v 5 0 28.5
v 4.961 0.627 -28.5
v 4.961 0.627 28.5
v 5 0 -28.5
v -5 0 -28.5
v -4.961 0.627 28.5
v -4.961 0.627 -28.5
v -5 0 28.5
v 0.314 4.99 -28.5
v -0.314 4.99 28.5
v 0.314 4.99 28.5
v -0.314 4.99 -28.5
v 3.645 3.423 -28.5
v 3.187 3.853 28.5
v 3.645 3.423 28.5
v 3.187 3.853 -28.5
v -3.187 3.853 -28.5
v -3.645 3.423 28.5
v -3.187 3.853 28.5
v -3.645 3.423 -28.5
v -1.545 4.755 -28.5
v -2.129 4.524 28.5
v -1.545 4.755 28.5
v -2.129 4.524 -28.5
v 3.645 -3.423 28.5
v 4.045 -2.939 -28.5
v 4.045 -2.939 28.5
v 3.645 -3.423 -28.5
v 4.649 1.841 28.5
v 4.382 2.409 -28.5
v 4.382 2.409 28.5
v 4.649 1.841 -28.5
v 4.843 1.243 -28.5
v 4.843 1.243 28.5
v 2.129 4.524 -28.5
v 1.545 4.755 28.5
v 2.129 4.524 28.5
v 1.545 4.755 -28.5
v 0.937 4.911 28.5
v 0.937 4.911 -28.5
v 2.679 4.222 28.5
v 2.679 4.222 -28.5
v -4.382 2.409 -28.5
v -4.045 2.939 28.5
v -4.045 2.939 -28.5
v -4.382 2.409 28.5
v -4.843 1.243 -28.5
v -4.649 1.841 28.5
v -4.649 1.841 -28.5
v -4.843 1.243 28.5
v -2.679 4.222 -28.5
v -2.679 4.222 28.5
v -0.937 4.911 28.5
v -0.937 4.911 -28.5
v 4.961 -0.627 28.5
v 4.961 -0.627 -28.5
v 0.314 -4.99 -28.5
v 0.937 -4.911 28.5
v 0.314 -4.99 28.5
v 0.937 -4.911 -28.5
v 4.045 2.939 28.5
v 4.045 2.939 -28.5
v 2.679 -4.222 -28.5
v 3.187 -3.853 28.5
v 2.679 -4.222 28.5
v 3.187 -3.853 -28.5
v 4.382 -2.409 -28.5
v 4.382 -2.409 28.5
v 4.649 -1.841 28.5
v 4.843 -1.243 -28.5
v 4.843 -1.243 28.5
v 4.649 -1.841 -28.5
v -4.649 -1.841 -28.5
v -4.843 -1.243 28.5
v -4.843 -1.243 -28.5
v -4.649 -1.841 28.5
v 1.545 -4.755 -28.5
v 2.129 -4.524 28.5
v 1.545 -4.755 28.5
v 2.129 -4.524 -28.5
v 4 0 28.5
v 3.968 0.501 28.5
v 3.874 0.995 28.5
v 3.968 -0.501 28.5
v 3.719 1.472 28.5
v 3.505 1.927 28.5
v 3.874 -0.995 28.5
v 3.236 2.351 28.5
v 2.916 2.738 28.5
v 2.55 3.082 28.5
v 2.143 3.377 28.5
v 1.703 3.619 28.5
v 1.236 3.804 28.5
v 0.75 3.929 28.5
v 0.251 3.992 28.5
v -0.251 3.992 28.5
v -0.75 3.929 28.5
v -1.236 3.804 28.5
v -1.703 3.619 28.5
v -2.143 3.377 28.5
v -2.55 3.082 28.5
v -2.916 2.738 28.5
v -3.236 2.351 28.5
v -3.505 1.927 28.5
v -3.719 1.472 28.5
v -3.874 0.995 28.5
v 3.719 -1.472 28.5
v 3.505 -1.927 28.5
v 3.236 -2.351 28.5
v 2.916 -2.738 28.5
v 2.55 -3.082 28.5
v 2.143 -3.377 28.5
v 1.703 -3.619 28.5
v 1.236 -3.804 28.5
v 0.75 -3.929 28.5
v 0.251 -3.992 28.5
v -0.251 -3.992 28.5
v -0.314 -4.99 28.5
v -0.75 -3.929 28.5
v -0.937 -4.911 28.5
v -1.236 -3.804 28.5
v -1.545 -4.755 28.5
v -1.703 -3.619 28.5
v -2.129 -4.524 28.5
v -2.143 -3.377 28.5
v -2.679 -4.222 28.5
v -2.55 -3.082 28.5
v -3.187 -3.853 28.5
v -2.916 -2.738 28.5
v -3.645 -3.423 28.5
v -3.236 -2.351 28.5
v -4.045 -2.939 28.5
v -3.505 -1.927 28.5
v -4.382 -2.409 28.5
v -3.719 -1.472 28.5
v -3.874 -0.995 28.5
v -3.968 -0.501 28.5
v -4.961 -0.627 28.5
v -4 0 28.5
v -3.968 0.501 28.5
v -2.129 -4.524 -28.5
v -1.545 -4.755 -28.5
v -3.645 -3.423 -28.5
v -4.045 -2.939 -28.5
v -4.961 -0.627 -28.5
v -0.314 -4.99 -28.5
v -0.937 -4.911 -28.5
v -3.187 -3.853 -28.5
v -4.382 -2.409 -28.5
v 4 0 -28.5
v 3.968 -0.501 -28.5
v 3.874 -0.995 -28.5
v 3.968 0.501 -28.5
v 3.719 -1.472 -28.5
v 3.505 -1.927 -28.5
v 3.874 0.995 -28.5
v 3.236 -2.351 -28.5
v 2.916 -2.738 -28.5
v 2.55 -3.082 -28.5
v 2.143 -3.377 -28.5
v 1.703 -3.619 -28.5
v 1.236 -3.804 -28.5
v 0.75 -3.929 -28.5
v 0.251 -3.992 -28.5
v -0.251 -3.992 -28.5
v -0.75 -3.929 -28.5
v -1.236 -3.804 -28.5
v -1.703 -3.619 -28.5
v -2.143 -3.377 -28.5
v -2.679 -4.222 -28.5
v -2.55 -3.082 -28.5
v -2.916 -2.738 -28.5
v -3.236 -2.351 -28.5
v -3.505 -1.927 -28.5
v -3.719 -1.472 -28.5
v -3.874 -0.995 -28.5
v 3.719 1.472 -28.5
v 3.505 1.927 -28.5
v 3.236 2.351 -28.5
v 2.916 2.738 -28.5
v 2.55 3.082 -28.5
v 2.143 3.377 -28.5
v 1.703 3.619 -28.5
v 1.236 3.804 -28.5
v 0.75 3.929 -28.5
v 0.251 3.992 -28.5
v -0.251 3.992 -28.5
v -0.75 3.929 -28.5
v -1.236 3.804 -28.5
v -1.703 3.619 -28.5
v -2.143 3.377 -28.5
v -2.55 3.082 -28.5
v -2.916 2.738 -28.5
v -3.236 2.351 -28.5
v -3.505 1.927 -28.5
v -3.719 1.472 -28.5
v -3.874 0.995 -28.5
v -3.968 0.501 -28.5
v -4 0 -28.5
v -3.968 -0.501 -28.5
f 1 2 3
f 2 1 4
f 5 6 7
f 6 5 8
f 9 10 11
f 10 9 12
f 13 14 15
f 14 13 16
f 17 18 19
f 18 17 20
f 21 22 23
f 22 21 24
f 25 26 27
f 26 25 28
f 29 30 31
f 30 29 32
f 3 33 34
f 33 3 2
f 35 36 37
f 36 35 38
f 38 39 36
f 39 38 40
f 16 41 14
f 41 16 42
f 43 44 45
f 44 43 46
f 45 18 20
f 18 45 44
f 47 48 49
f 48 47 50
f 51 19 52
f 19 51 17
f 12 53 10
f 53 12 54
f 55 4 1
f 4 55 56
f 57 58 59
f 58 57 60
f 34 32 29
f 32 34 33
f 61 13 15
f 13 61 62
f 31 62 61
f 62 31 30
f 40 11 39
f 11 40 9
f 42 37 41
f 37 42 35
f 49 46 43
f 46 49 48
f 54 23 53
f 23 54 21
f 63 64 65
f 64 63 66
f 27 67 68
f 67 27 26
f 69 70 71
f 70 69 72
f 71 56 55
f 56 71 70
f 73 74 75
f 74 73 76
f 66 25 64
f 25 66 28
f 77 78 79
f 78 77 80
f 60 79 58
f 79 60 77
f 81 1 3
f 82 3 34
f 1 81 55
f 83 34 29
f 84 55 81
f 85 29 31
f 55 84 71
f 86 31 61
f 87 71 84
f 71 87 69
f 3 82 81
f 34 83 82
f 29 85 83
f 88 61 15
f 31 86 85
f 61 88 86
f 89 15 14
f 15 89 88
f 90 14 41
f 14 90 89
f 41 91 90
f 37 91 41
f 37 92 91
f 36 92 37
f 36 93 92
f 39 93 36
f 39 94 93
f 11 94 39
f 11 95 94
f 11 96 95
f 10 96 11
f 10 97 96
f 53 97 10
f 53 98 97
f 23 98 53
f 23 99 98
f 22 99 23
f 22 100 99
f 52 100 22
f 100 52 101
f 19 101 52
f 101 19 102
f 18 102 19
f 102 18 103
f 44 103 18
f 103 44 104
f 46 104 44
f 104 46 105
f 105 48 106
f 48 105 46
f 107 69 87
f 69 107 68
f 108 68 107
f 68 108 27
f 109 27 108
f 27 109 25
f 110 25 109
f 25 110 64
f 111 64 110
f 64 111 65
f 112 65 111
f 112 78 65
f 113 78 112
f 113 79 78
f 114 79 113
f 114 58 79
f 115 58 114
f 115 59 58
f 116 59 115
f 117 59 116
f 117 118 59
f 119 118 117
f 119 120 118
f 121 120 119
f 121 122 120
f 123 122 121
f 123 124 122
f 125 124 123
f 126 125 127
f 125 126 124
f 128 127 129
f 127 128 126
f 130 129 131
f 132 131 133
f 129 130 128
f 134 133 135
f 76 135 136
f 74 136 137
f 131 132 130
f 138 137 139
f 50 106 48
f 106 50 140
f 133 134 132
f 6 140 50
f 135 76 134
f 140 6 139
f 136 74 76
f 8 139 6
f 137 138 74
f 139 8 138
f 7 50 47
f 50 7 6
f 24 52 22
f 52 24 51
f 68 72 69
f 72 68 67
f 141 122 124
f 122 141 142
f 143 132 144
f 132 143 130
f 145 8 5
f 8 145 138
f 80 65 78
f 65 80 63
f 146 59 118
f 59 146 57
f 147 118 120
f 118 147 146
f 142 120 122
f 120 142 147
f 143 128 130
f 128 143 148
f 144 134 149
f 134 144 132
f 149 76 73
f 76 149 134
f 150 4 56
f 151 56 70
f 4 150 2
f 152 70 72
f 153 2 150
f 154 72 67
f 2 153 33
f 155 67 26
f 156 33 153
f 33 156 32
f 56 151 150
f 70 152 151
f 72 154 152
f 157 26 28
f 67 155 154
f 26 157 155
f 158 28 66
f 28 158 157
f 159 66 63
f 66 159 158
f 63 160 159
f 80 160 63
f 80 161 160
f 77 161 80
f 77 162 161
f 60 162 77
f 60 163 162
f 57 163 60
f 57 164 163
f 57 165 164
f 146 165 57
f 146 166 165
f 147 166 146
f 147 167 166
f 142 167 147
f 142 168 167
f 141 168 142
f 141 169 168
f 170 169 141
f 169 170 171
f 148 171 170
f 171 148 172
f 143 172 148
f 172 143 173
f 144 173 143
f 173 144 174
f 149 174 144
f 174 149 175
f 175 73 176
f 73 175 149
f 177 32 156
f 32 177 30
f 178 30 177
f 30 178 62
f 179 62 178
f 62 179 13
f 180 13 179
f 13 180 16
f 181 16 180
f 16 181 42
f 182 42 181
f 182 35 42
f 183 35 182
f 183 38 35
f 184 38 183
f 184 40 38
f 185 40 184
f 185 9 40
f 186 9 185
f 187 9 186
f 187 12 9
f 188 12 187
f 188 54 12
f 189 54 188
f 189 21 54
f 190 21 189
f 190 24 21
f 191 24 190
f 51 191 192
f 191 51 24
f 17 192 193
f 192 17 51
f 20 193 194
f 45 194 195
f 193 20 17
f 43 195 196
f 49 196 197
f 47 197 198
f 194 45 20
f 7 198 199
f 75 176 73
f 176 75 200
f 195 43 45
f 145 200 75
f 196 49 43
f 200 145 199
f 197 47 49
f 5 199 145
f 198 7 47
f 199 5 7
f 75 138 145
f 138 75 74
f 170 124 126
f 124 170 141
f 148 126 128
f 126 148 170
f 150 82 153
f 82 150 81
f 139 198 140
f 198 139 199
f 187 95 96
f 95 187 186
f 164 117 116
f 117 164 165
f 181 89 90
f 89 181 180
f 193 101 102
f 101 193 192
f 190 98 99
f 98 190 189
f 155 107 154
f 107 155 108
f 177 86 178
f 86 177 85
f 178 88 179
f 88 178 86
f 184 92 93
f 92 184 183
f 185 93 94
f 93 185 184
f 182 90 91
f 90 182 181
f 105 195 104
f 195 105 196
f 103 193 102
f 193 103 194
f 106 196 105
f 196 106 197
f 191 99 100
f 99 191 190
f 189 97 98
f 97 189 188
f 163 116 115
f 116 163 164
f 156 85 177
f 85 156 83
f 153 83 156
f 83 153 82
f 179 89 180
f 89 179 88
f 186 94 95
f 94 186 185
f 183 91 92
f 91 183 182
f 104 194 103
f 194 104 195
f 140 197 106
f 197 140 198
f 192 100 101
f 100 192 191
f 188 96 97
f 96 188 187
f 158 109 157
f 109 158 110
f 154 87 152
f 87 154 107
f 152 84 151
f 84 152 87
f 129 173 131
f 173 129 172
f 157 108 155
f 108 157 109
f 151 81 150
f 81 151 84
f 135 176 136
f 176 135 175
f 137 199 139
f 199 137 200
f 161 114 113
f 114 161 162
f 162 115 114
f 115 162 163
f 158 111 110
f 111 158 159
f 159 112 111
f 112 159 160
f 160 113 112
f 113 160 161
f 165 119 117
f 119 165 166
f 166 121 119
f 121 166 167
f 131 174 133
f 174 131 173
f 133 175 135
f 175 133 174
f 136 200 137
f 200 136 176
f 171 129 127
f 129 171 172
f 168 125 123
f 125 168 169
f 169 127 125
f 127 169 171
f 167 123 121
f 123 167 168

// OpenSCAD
$fn = 50;


difference() {
	union() {
		translate(v = [0, 0, -28.5000000000]) {
			cylinder(h = 57, r = 5.0000000000);
		}
	}
	union() {
		translate(v = [0, 0, -100.0000000000]) {
			cylinder(h = 200, r = 4.0000000000);
		}
	}
}
